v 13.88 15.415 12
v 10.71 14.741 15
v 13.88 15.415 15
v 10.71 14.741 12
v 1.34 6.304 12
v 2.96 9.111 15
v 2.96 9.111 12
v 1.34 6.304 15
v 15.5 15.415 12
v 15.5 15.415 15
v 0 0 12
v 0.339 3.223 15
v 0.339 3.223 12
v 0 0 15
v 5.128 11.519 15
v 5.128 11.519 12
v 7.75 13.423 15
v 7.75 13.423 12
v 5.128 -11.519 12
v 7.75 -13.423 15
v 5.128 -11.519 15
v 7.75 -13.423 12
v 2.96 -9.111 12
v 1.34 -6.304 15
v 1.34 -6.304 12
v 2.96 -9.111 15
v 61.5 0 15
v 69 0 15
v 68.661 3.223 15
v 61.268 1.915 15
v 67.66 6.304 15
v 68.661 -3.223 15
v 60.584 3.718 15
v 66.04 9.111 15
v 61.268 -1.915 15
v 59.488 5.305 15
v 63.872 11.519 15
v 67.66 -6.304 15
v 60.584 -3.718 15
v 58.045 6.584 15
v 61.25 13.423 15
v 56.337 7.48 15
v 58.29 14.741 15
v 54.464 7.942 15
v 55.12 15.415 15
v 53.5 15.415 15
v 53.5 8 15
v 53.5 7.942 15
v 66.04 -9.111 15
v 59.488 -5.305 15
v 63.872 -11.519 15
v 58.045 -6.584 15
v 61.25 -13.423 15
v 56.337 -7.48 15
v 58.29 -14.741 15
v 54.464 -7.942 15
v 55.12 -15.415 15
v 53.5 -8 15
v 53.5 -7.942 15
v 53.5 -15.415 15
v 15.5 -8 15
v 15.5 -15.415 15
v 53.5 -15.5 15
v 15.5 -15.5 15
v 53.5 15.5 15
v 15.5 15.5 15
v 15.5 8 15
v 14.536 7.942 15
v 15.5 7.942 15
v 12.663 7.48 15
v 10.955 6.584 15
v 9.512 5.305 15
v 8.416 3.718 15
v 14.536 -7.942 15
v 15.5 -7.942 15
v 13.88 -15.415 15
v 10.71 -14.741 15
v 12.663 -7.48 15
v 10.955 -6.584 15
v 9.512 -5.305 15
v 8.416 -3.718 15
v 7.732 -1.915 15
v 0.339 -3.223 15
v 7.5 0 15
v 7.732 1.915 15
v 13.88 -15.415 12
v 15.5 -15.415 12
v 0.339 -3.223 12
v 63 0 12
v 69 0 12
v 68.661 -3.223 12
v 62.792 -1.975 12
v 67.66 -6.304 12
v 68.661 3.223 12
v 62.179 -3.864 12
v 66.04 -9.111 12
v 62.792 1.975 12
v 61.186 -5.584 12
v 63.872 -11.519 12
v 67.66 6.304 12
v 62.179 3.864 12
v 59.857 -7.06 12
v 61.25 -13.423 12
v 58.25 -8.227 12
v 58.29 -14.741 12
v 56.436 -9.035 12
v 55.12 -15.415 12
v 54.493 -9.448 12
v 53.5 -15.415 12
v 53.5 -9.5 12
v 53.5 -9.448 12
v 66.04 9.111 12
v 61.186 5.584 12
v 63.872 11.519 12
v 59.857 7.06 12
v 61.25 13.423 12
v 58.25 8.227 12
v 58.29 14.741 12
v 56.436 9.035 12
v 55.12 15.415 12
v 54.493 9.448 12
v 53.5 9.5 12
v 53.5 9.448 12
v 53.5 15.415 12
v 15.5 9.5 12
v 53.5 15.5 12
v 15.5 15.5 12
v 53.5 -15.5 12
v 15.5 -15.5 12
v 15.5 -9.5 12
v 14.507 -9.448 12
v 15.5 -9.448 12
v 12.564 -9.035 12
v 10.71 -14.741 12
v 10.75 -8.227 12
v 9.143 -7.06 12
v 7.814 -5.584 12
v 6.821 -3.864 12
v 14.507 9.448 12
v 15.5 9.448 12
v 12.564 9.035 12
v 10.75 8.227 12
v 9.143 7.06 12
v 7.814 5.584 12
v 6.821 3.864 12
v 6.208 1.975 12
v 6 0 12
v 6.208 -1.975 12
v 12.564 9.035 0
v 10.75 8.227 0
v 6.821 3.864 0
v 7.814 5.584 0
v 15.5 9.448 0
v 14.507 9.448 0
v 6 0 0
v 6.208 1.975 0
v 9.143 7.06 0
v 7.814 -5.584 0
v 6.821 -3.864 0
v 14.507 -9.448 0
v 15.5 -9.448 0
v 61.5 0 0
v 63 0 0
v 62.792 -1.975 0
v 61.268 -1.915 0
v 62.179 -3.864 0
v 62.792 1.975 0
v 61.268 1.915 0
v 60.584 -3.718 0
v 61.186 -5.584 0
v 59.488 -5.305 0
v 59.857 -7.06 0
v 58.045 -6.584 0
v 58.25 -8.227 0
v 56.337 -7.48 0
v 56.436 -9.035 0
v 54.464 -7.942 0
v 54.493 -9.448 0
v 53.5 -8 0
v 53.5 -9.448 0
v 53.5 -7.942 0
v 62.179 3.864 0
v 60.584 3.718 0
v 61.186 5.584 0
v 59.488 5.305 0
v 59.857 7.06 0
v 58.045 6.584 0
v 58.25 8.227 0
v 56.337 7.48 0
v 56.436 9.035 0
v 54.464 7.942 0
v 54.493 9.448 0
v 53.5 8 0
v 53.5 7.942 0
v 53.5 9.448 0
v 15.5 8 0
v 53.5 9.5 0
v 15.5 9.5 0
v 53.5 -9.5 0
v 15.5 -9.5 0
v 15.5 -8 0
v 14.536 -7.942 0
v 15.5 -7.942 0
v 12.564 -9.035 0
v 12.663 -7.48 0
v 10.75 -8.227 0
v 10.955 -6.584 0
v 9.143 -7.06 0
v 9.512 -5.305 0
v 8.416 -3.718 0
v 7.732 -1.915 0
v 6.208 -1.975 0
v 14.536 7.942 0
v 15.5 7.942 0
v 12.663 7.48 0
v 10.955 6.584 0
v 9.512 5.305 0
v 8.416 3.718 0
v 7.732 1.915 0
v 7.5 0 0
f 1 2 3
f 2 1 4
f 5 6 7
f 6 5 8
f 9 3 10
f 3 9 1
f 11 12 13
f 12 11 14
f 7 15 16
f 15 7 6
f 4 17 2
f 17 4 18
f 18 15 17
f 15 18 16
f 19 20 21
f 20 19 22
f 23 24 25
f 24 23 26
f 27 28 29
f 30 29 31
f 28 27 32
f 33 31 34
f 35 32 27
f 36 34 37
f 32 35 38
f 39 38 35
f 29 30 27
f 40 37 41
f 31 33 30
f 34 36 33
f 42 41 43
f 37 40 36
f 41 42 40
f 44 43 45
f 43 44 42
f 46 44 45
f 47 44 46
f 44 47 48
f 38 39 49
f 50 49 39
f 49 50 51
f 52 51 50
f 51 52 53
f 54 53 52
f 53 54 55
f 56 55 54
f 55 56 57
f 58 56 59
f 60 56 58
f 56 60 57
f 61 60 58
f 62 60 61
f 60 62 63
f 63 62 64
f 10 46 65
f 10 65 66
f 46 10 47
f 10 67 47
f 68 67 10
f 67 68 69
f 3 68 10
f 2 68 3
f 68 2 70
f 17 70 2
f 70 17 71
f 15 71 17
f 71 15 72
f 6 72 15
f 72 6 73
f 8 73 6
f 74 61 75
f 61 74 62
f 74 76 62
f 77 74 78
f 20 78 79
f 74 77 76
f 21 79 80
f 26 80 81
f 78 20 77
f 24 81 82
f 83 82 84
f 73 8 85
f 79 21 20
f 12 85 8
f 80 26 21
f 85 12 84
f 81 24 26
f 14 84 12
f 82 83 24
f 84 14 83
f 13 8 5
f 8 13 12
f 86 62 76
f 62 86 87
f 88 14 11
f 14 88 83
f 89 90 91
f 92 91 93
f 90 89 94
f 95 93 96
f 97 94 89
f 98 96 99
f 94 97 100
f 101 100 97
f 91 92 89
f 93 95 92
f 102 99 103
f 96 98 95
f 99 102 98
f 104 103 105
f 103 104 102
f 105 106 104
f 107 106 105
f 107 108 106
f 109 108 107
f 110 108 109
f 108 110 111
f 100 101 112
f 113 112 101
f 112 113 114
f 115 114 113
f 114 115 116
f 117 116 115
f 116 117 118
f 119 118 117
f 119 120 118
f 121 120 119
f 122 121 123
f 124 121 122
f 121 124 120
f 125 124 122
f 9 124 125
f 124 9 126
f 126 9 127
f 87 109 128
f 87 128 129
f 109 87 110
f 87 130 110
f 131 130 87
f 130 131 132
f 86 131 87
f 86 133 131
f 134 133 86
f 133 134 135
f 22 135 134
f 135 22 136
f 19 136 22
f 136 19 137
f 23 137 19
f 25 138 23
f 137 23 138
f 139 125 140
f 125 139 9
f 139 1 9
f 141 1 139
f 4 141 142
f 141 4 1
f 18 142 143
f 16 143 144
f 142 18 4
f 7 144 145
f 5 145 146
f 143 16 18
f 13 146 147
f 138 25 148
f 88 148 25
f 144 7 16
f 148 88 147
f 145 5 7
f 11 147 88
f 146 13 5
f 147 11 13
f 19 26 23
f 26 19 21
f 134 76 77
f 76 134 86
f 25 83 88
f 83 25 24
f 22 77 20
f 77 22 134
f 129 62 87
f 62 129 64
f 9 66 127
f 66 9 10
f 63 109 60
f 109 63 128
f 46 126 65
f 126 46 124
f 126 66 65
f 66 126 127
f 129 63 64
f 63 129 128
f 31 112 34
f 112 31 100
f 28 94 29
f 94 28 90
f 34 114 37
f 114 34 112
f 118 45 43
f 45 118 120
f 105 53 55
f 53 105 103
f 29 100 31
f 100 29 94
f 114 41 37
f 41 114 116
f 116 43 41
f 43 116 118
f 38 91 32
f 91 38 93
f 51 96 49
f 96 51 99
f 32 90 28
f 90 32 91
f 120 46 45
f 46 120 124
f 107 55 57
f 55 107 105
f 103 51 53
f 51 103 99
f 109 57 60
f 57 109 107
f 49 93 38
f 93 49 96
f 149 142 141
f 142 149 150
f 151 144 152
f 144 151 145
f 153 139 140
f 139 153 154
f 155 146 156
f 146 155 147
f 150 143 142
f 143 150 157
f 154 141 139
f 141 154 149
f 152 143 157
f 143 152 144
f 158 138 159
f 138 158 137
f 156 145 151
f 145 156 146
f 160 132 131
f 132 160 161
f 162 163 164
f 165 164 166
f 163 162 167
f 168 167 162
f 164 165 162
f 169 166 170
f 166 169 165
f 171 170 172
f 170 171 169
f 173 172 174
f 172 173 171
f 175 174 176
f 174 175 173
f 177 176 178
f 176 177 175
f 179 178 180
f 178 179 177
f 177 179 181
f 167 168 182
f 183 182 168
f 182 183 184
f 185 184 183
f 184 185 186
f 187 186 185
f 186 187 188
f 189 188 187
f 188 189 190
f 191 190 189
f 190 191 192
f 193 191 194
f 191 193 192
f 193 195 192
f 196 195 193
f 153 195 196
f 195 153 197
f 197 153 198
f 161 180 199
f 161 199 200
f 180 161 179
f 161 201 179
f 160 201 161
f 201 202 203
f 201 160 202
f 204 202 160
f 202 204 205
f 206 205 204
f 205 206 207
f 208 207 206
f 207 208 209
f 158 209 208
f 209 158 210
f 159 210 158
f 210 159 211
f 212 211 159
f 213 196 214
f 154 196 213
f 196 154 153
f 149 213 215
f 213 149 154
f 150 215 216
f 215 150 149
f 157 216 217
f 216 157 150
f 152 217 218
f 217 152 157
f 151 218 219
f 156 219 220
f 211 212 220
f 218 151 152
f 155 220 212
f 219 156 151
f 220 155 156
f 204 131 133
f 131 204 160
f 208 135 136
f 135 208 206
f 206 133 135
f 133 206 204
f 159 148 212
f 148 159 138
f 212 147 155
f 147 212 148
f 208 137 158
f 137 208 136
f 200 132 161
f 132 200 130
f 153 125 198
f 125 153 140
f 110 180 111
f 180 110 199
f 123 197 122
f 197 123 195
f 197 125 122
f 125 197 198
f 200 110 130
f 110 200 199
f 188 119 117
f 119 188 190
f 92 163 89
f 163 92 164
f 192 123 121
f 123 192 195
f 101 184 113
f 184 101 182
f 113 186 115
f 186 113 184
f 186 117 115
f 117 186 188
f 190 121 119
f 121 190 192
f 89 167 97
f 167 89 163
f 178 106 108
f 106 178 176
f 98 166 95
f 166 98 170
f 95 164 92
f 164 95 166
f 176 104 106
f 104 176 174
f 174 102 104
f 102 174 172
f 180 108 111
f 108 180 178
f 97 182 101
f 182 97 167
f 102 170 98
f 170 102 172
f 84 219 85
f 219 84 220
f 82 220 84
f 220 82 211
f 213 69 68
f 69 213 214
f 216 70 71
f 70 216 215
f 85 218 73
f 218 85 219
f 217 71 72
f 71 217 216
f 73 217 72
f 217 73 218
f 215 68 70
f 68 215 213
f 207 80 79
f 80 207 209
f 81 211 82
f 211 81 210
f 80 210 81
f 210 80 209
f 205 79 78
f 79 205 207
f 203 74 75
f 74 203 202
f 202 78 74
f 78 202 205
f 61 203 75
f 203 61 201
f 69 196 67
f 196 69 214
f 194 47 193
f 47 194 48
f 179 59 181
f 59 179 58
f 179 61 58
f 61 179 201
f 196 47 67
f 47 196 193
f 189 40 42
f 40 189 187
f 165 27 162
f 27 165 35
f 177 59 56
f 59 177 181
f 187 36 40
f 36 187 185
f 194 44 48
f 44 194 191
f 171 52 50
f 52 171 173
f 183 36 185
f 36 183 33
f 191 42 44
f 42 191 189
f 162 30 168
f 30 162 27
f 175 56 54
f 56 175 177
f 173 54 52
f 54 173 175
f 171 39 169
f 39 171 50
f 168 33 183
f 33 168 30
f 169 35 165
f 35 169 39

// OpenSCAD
plug_width = 19;
plug_length = 57;
depth = 12;
thickness = 3;
flange_overlap = 6;
flange_thickness = 3;

module Plug() 
{
    radius = plug_width / 2;
    
    cylinder (depth, radius, radius);

    translate([0, - plug_width / 2, 0])
    {
        cube([plug_length  - plug_width, radius * 2, depth]);
    };

    translate([plug_length - plug_width, 0,0])
    {
        cylinder (depth, radius, radius);
    };
};

module Hole() 
{    
    radius = (plug_width - thickness) / 2;
    depth = depth + thickness + flange_thickness;
    
    cylinder (depth, radius, radius);

    translate([0, - radius, 0])
    {
        cube([plug_length  - (plug_width), (plug_width - thickness), depth]);
    };

    translate([plug_length - (plug_width) , 0,0])
    {
        cylinder (depth, radius, radius);
    };
};

module PlugFlange() 
{
    radius = (plug_width / 2) + flange_overlap;
    
    cylinder (flange_thickness, radius, radius);

    translate([0, - radius, 0])
    {
        cube([plug_length  - plug_width, radius * 2, flange_thickness]);
    };

    translate([plug_length - plug_width, 0,0])
    {
        cylinder (flange_thickness, radius, radius);
    };
};

translate([(flange_overlap + (plug_width / 2)), 0,0])
{
   difference()
   {
        union()
        {
            translate([0,0,depth])
            {
                PlugFlange();
            };
            Plug();
        }

        Hole();
    };
};
